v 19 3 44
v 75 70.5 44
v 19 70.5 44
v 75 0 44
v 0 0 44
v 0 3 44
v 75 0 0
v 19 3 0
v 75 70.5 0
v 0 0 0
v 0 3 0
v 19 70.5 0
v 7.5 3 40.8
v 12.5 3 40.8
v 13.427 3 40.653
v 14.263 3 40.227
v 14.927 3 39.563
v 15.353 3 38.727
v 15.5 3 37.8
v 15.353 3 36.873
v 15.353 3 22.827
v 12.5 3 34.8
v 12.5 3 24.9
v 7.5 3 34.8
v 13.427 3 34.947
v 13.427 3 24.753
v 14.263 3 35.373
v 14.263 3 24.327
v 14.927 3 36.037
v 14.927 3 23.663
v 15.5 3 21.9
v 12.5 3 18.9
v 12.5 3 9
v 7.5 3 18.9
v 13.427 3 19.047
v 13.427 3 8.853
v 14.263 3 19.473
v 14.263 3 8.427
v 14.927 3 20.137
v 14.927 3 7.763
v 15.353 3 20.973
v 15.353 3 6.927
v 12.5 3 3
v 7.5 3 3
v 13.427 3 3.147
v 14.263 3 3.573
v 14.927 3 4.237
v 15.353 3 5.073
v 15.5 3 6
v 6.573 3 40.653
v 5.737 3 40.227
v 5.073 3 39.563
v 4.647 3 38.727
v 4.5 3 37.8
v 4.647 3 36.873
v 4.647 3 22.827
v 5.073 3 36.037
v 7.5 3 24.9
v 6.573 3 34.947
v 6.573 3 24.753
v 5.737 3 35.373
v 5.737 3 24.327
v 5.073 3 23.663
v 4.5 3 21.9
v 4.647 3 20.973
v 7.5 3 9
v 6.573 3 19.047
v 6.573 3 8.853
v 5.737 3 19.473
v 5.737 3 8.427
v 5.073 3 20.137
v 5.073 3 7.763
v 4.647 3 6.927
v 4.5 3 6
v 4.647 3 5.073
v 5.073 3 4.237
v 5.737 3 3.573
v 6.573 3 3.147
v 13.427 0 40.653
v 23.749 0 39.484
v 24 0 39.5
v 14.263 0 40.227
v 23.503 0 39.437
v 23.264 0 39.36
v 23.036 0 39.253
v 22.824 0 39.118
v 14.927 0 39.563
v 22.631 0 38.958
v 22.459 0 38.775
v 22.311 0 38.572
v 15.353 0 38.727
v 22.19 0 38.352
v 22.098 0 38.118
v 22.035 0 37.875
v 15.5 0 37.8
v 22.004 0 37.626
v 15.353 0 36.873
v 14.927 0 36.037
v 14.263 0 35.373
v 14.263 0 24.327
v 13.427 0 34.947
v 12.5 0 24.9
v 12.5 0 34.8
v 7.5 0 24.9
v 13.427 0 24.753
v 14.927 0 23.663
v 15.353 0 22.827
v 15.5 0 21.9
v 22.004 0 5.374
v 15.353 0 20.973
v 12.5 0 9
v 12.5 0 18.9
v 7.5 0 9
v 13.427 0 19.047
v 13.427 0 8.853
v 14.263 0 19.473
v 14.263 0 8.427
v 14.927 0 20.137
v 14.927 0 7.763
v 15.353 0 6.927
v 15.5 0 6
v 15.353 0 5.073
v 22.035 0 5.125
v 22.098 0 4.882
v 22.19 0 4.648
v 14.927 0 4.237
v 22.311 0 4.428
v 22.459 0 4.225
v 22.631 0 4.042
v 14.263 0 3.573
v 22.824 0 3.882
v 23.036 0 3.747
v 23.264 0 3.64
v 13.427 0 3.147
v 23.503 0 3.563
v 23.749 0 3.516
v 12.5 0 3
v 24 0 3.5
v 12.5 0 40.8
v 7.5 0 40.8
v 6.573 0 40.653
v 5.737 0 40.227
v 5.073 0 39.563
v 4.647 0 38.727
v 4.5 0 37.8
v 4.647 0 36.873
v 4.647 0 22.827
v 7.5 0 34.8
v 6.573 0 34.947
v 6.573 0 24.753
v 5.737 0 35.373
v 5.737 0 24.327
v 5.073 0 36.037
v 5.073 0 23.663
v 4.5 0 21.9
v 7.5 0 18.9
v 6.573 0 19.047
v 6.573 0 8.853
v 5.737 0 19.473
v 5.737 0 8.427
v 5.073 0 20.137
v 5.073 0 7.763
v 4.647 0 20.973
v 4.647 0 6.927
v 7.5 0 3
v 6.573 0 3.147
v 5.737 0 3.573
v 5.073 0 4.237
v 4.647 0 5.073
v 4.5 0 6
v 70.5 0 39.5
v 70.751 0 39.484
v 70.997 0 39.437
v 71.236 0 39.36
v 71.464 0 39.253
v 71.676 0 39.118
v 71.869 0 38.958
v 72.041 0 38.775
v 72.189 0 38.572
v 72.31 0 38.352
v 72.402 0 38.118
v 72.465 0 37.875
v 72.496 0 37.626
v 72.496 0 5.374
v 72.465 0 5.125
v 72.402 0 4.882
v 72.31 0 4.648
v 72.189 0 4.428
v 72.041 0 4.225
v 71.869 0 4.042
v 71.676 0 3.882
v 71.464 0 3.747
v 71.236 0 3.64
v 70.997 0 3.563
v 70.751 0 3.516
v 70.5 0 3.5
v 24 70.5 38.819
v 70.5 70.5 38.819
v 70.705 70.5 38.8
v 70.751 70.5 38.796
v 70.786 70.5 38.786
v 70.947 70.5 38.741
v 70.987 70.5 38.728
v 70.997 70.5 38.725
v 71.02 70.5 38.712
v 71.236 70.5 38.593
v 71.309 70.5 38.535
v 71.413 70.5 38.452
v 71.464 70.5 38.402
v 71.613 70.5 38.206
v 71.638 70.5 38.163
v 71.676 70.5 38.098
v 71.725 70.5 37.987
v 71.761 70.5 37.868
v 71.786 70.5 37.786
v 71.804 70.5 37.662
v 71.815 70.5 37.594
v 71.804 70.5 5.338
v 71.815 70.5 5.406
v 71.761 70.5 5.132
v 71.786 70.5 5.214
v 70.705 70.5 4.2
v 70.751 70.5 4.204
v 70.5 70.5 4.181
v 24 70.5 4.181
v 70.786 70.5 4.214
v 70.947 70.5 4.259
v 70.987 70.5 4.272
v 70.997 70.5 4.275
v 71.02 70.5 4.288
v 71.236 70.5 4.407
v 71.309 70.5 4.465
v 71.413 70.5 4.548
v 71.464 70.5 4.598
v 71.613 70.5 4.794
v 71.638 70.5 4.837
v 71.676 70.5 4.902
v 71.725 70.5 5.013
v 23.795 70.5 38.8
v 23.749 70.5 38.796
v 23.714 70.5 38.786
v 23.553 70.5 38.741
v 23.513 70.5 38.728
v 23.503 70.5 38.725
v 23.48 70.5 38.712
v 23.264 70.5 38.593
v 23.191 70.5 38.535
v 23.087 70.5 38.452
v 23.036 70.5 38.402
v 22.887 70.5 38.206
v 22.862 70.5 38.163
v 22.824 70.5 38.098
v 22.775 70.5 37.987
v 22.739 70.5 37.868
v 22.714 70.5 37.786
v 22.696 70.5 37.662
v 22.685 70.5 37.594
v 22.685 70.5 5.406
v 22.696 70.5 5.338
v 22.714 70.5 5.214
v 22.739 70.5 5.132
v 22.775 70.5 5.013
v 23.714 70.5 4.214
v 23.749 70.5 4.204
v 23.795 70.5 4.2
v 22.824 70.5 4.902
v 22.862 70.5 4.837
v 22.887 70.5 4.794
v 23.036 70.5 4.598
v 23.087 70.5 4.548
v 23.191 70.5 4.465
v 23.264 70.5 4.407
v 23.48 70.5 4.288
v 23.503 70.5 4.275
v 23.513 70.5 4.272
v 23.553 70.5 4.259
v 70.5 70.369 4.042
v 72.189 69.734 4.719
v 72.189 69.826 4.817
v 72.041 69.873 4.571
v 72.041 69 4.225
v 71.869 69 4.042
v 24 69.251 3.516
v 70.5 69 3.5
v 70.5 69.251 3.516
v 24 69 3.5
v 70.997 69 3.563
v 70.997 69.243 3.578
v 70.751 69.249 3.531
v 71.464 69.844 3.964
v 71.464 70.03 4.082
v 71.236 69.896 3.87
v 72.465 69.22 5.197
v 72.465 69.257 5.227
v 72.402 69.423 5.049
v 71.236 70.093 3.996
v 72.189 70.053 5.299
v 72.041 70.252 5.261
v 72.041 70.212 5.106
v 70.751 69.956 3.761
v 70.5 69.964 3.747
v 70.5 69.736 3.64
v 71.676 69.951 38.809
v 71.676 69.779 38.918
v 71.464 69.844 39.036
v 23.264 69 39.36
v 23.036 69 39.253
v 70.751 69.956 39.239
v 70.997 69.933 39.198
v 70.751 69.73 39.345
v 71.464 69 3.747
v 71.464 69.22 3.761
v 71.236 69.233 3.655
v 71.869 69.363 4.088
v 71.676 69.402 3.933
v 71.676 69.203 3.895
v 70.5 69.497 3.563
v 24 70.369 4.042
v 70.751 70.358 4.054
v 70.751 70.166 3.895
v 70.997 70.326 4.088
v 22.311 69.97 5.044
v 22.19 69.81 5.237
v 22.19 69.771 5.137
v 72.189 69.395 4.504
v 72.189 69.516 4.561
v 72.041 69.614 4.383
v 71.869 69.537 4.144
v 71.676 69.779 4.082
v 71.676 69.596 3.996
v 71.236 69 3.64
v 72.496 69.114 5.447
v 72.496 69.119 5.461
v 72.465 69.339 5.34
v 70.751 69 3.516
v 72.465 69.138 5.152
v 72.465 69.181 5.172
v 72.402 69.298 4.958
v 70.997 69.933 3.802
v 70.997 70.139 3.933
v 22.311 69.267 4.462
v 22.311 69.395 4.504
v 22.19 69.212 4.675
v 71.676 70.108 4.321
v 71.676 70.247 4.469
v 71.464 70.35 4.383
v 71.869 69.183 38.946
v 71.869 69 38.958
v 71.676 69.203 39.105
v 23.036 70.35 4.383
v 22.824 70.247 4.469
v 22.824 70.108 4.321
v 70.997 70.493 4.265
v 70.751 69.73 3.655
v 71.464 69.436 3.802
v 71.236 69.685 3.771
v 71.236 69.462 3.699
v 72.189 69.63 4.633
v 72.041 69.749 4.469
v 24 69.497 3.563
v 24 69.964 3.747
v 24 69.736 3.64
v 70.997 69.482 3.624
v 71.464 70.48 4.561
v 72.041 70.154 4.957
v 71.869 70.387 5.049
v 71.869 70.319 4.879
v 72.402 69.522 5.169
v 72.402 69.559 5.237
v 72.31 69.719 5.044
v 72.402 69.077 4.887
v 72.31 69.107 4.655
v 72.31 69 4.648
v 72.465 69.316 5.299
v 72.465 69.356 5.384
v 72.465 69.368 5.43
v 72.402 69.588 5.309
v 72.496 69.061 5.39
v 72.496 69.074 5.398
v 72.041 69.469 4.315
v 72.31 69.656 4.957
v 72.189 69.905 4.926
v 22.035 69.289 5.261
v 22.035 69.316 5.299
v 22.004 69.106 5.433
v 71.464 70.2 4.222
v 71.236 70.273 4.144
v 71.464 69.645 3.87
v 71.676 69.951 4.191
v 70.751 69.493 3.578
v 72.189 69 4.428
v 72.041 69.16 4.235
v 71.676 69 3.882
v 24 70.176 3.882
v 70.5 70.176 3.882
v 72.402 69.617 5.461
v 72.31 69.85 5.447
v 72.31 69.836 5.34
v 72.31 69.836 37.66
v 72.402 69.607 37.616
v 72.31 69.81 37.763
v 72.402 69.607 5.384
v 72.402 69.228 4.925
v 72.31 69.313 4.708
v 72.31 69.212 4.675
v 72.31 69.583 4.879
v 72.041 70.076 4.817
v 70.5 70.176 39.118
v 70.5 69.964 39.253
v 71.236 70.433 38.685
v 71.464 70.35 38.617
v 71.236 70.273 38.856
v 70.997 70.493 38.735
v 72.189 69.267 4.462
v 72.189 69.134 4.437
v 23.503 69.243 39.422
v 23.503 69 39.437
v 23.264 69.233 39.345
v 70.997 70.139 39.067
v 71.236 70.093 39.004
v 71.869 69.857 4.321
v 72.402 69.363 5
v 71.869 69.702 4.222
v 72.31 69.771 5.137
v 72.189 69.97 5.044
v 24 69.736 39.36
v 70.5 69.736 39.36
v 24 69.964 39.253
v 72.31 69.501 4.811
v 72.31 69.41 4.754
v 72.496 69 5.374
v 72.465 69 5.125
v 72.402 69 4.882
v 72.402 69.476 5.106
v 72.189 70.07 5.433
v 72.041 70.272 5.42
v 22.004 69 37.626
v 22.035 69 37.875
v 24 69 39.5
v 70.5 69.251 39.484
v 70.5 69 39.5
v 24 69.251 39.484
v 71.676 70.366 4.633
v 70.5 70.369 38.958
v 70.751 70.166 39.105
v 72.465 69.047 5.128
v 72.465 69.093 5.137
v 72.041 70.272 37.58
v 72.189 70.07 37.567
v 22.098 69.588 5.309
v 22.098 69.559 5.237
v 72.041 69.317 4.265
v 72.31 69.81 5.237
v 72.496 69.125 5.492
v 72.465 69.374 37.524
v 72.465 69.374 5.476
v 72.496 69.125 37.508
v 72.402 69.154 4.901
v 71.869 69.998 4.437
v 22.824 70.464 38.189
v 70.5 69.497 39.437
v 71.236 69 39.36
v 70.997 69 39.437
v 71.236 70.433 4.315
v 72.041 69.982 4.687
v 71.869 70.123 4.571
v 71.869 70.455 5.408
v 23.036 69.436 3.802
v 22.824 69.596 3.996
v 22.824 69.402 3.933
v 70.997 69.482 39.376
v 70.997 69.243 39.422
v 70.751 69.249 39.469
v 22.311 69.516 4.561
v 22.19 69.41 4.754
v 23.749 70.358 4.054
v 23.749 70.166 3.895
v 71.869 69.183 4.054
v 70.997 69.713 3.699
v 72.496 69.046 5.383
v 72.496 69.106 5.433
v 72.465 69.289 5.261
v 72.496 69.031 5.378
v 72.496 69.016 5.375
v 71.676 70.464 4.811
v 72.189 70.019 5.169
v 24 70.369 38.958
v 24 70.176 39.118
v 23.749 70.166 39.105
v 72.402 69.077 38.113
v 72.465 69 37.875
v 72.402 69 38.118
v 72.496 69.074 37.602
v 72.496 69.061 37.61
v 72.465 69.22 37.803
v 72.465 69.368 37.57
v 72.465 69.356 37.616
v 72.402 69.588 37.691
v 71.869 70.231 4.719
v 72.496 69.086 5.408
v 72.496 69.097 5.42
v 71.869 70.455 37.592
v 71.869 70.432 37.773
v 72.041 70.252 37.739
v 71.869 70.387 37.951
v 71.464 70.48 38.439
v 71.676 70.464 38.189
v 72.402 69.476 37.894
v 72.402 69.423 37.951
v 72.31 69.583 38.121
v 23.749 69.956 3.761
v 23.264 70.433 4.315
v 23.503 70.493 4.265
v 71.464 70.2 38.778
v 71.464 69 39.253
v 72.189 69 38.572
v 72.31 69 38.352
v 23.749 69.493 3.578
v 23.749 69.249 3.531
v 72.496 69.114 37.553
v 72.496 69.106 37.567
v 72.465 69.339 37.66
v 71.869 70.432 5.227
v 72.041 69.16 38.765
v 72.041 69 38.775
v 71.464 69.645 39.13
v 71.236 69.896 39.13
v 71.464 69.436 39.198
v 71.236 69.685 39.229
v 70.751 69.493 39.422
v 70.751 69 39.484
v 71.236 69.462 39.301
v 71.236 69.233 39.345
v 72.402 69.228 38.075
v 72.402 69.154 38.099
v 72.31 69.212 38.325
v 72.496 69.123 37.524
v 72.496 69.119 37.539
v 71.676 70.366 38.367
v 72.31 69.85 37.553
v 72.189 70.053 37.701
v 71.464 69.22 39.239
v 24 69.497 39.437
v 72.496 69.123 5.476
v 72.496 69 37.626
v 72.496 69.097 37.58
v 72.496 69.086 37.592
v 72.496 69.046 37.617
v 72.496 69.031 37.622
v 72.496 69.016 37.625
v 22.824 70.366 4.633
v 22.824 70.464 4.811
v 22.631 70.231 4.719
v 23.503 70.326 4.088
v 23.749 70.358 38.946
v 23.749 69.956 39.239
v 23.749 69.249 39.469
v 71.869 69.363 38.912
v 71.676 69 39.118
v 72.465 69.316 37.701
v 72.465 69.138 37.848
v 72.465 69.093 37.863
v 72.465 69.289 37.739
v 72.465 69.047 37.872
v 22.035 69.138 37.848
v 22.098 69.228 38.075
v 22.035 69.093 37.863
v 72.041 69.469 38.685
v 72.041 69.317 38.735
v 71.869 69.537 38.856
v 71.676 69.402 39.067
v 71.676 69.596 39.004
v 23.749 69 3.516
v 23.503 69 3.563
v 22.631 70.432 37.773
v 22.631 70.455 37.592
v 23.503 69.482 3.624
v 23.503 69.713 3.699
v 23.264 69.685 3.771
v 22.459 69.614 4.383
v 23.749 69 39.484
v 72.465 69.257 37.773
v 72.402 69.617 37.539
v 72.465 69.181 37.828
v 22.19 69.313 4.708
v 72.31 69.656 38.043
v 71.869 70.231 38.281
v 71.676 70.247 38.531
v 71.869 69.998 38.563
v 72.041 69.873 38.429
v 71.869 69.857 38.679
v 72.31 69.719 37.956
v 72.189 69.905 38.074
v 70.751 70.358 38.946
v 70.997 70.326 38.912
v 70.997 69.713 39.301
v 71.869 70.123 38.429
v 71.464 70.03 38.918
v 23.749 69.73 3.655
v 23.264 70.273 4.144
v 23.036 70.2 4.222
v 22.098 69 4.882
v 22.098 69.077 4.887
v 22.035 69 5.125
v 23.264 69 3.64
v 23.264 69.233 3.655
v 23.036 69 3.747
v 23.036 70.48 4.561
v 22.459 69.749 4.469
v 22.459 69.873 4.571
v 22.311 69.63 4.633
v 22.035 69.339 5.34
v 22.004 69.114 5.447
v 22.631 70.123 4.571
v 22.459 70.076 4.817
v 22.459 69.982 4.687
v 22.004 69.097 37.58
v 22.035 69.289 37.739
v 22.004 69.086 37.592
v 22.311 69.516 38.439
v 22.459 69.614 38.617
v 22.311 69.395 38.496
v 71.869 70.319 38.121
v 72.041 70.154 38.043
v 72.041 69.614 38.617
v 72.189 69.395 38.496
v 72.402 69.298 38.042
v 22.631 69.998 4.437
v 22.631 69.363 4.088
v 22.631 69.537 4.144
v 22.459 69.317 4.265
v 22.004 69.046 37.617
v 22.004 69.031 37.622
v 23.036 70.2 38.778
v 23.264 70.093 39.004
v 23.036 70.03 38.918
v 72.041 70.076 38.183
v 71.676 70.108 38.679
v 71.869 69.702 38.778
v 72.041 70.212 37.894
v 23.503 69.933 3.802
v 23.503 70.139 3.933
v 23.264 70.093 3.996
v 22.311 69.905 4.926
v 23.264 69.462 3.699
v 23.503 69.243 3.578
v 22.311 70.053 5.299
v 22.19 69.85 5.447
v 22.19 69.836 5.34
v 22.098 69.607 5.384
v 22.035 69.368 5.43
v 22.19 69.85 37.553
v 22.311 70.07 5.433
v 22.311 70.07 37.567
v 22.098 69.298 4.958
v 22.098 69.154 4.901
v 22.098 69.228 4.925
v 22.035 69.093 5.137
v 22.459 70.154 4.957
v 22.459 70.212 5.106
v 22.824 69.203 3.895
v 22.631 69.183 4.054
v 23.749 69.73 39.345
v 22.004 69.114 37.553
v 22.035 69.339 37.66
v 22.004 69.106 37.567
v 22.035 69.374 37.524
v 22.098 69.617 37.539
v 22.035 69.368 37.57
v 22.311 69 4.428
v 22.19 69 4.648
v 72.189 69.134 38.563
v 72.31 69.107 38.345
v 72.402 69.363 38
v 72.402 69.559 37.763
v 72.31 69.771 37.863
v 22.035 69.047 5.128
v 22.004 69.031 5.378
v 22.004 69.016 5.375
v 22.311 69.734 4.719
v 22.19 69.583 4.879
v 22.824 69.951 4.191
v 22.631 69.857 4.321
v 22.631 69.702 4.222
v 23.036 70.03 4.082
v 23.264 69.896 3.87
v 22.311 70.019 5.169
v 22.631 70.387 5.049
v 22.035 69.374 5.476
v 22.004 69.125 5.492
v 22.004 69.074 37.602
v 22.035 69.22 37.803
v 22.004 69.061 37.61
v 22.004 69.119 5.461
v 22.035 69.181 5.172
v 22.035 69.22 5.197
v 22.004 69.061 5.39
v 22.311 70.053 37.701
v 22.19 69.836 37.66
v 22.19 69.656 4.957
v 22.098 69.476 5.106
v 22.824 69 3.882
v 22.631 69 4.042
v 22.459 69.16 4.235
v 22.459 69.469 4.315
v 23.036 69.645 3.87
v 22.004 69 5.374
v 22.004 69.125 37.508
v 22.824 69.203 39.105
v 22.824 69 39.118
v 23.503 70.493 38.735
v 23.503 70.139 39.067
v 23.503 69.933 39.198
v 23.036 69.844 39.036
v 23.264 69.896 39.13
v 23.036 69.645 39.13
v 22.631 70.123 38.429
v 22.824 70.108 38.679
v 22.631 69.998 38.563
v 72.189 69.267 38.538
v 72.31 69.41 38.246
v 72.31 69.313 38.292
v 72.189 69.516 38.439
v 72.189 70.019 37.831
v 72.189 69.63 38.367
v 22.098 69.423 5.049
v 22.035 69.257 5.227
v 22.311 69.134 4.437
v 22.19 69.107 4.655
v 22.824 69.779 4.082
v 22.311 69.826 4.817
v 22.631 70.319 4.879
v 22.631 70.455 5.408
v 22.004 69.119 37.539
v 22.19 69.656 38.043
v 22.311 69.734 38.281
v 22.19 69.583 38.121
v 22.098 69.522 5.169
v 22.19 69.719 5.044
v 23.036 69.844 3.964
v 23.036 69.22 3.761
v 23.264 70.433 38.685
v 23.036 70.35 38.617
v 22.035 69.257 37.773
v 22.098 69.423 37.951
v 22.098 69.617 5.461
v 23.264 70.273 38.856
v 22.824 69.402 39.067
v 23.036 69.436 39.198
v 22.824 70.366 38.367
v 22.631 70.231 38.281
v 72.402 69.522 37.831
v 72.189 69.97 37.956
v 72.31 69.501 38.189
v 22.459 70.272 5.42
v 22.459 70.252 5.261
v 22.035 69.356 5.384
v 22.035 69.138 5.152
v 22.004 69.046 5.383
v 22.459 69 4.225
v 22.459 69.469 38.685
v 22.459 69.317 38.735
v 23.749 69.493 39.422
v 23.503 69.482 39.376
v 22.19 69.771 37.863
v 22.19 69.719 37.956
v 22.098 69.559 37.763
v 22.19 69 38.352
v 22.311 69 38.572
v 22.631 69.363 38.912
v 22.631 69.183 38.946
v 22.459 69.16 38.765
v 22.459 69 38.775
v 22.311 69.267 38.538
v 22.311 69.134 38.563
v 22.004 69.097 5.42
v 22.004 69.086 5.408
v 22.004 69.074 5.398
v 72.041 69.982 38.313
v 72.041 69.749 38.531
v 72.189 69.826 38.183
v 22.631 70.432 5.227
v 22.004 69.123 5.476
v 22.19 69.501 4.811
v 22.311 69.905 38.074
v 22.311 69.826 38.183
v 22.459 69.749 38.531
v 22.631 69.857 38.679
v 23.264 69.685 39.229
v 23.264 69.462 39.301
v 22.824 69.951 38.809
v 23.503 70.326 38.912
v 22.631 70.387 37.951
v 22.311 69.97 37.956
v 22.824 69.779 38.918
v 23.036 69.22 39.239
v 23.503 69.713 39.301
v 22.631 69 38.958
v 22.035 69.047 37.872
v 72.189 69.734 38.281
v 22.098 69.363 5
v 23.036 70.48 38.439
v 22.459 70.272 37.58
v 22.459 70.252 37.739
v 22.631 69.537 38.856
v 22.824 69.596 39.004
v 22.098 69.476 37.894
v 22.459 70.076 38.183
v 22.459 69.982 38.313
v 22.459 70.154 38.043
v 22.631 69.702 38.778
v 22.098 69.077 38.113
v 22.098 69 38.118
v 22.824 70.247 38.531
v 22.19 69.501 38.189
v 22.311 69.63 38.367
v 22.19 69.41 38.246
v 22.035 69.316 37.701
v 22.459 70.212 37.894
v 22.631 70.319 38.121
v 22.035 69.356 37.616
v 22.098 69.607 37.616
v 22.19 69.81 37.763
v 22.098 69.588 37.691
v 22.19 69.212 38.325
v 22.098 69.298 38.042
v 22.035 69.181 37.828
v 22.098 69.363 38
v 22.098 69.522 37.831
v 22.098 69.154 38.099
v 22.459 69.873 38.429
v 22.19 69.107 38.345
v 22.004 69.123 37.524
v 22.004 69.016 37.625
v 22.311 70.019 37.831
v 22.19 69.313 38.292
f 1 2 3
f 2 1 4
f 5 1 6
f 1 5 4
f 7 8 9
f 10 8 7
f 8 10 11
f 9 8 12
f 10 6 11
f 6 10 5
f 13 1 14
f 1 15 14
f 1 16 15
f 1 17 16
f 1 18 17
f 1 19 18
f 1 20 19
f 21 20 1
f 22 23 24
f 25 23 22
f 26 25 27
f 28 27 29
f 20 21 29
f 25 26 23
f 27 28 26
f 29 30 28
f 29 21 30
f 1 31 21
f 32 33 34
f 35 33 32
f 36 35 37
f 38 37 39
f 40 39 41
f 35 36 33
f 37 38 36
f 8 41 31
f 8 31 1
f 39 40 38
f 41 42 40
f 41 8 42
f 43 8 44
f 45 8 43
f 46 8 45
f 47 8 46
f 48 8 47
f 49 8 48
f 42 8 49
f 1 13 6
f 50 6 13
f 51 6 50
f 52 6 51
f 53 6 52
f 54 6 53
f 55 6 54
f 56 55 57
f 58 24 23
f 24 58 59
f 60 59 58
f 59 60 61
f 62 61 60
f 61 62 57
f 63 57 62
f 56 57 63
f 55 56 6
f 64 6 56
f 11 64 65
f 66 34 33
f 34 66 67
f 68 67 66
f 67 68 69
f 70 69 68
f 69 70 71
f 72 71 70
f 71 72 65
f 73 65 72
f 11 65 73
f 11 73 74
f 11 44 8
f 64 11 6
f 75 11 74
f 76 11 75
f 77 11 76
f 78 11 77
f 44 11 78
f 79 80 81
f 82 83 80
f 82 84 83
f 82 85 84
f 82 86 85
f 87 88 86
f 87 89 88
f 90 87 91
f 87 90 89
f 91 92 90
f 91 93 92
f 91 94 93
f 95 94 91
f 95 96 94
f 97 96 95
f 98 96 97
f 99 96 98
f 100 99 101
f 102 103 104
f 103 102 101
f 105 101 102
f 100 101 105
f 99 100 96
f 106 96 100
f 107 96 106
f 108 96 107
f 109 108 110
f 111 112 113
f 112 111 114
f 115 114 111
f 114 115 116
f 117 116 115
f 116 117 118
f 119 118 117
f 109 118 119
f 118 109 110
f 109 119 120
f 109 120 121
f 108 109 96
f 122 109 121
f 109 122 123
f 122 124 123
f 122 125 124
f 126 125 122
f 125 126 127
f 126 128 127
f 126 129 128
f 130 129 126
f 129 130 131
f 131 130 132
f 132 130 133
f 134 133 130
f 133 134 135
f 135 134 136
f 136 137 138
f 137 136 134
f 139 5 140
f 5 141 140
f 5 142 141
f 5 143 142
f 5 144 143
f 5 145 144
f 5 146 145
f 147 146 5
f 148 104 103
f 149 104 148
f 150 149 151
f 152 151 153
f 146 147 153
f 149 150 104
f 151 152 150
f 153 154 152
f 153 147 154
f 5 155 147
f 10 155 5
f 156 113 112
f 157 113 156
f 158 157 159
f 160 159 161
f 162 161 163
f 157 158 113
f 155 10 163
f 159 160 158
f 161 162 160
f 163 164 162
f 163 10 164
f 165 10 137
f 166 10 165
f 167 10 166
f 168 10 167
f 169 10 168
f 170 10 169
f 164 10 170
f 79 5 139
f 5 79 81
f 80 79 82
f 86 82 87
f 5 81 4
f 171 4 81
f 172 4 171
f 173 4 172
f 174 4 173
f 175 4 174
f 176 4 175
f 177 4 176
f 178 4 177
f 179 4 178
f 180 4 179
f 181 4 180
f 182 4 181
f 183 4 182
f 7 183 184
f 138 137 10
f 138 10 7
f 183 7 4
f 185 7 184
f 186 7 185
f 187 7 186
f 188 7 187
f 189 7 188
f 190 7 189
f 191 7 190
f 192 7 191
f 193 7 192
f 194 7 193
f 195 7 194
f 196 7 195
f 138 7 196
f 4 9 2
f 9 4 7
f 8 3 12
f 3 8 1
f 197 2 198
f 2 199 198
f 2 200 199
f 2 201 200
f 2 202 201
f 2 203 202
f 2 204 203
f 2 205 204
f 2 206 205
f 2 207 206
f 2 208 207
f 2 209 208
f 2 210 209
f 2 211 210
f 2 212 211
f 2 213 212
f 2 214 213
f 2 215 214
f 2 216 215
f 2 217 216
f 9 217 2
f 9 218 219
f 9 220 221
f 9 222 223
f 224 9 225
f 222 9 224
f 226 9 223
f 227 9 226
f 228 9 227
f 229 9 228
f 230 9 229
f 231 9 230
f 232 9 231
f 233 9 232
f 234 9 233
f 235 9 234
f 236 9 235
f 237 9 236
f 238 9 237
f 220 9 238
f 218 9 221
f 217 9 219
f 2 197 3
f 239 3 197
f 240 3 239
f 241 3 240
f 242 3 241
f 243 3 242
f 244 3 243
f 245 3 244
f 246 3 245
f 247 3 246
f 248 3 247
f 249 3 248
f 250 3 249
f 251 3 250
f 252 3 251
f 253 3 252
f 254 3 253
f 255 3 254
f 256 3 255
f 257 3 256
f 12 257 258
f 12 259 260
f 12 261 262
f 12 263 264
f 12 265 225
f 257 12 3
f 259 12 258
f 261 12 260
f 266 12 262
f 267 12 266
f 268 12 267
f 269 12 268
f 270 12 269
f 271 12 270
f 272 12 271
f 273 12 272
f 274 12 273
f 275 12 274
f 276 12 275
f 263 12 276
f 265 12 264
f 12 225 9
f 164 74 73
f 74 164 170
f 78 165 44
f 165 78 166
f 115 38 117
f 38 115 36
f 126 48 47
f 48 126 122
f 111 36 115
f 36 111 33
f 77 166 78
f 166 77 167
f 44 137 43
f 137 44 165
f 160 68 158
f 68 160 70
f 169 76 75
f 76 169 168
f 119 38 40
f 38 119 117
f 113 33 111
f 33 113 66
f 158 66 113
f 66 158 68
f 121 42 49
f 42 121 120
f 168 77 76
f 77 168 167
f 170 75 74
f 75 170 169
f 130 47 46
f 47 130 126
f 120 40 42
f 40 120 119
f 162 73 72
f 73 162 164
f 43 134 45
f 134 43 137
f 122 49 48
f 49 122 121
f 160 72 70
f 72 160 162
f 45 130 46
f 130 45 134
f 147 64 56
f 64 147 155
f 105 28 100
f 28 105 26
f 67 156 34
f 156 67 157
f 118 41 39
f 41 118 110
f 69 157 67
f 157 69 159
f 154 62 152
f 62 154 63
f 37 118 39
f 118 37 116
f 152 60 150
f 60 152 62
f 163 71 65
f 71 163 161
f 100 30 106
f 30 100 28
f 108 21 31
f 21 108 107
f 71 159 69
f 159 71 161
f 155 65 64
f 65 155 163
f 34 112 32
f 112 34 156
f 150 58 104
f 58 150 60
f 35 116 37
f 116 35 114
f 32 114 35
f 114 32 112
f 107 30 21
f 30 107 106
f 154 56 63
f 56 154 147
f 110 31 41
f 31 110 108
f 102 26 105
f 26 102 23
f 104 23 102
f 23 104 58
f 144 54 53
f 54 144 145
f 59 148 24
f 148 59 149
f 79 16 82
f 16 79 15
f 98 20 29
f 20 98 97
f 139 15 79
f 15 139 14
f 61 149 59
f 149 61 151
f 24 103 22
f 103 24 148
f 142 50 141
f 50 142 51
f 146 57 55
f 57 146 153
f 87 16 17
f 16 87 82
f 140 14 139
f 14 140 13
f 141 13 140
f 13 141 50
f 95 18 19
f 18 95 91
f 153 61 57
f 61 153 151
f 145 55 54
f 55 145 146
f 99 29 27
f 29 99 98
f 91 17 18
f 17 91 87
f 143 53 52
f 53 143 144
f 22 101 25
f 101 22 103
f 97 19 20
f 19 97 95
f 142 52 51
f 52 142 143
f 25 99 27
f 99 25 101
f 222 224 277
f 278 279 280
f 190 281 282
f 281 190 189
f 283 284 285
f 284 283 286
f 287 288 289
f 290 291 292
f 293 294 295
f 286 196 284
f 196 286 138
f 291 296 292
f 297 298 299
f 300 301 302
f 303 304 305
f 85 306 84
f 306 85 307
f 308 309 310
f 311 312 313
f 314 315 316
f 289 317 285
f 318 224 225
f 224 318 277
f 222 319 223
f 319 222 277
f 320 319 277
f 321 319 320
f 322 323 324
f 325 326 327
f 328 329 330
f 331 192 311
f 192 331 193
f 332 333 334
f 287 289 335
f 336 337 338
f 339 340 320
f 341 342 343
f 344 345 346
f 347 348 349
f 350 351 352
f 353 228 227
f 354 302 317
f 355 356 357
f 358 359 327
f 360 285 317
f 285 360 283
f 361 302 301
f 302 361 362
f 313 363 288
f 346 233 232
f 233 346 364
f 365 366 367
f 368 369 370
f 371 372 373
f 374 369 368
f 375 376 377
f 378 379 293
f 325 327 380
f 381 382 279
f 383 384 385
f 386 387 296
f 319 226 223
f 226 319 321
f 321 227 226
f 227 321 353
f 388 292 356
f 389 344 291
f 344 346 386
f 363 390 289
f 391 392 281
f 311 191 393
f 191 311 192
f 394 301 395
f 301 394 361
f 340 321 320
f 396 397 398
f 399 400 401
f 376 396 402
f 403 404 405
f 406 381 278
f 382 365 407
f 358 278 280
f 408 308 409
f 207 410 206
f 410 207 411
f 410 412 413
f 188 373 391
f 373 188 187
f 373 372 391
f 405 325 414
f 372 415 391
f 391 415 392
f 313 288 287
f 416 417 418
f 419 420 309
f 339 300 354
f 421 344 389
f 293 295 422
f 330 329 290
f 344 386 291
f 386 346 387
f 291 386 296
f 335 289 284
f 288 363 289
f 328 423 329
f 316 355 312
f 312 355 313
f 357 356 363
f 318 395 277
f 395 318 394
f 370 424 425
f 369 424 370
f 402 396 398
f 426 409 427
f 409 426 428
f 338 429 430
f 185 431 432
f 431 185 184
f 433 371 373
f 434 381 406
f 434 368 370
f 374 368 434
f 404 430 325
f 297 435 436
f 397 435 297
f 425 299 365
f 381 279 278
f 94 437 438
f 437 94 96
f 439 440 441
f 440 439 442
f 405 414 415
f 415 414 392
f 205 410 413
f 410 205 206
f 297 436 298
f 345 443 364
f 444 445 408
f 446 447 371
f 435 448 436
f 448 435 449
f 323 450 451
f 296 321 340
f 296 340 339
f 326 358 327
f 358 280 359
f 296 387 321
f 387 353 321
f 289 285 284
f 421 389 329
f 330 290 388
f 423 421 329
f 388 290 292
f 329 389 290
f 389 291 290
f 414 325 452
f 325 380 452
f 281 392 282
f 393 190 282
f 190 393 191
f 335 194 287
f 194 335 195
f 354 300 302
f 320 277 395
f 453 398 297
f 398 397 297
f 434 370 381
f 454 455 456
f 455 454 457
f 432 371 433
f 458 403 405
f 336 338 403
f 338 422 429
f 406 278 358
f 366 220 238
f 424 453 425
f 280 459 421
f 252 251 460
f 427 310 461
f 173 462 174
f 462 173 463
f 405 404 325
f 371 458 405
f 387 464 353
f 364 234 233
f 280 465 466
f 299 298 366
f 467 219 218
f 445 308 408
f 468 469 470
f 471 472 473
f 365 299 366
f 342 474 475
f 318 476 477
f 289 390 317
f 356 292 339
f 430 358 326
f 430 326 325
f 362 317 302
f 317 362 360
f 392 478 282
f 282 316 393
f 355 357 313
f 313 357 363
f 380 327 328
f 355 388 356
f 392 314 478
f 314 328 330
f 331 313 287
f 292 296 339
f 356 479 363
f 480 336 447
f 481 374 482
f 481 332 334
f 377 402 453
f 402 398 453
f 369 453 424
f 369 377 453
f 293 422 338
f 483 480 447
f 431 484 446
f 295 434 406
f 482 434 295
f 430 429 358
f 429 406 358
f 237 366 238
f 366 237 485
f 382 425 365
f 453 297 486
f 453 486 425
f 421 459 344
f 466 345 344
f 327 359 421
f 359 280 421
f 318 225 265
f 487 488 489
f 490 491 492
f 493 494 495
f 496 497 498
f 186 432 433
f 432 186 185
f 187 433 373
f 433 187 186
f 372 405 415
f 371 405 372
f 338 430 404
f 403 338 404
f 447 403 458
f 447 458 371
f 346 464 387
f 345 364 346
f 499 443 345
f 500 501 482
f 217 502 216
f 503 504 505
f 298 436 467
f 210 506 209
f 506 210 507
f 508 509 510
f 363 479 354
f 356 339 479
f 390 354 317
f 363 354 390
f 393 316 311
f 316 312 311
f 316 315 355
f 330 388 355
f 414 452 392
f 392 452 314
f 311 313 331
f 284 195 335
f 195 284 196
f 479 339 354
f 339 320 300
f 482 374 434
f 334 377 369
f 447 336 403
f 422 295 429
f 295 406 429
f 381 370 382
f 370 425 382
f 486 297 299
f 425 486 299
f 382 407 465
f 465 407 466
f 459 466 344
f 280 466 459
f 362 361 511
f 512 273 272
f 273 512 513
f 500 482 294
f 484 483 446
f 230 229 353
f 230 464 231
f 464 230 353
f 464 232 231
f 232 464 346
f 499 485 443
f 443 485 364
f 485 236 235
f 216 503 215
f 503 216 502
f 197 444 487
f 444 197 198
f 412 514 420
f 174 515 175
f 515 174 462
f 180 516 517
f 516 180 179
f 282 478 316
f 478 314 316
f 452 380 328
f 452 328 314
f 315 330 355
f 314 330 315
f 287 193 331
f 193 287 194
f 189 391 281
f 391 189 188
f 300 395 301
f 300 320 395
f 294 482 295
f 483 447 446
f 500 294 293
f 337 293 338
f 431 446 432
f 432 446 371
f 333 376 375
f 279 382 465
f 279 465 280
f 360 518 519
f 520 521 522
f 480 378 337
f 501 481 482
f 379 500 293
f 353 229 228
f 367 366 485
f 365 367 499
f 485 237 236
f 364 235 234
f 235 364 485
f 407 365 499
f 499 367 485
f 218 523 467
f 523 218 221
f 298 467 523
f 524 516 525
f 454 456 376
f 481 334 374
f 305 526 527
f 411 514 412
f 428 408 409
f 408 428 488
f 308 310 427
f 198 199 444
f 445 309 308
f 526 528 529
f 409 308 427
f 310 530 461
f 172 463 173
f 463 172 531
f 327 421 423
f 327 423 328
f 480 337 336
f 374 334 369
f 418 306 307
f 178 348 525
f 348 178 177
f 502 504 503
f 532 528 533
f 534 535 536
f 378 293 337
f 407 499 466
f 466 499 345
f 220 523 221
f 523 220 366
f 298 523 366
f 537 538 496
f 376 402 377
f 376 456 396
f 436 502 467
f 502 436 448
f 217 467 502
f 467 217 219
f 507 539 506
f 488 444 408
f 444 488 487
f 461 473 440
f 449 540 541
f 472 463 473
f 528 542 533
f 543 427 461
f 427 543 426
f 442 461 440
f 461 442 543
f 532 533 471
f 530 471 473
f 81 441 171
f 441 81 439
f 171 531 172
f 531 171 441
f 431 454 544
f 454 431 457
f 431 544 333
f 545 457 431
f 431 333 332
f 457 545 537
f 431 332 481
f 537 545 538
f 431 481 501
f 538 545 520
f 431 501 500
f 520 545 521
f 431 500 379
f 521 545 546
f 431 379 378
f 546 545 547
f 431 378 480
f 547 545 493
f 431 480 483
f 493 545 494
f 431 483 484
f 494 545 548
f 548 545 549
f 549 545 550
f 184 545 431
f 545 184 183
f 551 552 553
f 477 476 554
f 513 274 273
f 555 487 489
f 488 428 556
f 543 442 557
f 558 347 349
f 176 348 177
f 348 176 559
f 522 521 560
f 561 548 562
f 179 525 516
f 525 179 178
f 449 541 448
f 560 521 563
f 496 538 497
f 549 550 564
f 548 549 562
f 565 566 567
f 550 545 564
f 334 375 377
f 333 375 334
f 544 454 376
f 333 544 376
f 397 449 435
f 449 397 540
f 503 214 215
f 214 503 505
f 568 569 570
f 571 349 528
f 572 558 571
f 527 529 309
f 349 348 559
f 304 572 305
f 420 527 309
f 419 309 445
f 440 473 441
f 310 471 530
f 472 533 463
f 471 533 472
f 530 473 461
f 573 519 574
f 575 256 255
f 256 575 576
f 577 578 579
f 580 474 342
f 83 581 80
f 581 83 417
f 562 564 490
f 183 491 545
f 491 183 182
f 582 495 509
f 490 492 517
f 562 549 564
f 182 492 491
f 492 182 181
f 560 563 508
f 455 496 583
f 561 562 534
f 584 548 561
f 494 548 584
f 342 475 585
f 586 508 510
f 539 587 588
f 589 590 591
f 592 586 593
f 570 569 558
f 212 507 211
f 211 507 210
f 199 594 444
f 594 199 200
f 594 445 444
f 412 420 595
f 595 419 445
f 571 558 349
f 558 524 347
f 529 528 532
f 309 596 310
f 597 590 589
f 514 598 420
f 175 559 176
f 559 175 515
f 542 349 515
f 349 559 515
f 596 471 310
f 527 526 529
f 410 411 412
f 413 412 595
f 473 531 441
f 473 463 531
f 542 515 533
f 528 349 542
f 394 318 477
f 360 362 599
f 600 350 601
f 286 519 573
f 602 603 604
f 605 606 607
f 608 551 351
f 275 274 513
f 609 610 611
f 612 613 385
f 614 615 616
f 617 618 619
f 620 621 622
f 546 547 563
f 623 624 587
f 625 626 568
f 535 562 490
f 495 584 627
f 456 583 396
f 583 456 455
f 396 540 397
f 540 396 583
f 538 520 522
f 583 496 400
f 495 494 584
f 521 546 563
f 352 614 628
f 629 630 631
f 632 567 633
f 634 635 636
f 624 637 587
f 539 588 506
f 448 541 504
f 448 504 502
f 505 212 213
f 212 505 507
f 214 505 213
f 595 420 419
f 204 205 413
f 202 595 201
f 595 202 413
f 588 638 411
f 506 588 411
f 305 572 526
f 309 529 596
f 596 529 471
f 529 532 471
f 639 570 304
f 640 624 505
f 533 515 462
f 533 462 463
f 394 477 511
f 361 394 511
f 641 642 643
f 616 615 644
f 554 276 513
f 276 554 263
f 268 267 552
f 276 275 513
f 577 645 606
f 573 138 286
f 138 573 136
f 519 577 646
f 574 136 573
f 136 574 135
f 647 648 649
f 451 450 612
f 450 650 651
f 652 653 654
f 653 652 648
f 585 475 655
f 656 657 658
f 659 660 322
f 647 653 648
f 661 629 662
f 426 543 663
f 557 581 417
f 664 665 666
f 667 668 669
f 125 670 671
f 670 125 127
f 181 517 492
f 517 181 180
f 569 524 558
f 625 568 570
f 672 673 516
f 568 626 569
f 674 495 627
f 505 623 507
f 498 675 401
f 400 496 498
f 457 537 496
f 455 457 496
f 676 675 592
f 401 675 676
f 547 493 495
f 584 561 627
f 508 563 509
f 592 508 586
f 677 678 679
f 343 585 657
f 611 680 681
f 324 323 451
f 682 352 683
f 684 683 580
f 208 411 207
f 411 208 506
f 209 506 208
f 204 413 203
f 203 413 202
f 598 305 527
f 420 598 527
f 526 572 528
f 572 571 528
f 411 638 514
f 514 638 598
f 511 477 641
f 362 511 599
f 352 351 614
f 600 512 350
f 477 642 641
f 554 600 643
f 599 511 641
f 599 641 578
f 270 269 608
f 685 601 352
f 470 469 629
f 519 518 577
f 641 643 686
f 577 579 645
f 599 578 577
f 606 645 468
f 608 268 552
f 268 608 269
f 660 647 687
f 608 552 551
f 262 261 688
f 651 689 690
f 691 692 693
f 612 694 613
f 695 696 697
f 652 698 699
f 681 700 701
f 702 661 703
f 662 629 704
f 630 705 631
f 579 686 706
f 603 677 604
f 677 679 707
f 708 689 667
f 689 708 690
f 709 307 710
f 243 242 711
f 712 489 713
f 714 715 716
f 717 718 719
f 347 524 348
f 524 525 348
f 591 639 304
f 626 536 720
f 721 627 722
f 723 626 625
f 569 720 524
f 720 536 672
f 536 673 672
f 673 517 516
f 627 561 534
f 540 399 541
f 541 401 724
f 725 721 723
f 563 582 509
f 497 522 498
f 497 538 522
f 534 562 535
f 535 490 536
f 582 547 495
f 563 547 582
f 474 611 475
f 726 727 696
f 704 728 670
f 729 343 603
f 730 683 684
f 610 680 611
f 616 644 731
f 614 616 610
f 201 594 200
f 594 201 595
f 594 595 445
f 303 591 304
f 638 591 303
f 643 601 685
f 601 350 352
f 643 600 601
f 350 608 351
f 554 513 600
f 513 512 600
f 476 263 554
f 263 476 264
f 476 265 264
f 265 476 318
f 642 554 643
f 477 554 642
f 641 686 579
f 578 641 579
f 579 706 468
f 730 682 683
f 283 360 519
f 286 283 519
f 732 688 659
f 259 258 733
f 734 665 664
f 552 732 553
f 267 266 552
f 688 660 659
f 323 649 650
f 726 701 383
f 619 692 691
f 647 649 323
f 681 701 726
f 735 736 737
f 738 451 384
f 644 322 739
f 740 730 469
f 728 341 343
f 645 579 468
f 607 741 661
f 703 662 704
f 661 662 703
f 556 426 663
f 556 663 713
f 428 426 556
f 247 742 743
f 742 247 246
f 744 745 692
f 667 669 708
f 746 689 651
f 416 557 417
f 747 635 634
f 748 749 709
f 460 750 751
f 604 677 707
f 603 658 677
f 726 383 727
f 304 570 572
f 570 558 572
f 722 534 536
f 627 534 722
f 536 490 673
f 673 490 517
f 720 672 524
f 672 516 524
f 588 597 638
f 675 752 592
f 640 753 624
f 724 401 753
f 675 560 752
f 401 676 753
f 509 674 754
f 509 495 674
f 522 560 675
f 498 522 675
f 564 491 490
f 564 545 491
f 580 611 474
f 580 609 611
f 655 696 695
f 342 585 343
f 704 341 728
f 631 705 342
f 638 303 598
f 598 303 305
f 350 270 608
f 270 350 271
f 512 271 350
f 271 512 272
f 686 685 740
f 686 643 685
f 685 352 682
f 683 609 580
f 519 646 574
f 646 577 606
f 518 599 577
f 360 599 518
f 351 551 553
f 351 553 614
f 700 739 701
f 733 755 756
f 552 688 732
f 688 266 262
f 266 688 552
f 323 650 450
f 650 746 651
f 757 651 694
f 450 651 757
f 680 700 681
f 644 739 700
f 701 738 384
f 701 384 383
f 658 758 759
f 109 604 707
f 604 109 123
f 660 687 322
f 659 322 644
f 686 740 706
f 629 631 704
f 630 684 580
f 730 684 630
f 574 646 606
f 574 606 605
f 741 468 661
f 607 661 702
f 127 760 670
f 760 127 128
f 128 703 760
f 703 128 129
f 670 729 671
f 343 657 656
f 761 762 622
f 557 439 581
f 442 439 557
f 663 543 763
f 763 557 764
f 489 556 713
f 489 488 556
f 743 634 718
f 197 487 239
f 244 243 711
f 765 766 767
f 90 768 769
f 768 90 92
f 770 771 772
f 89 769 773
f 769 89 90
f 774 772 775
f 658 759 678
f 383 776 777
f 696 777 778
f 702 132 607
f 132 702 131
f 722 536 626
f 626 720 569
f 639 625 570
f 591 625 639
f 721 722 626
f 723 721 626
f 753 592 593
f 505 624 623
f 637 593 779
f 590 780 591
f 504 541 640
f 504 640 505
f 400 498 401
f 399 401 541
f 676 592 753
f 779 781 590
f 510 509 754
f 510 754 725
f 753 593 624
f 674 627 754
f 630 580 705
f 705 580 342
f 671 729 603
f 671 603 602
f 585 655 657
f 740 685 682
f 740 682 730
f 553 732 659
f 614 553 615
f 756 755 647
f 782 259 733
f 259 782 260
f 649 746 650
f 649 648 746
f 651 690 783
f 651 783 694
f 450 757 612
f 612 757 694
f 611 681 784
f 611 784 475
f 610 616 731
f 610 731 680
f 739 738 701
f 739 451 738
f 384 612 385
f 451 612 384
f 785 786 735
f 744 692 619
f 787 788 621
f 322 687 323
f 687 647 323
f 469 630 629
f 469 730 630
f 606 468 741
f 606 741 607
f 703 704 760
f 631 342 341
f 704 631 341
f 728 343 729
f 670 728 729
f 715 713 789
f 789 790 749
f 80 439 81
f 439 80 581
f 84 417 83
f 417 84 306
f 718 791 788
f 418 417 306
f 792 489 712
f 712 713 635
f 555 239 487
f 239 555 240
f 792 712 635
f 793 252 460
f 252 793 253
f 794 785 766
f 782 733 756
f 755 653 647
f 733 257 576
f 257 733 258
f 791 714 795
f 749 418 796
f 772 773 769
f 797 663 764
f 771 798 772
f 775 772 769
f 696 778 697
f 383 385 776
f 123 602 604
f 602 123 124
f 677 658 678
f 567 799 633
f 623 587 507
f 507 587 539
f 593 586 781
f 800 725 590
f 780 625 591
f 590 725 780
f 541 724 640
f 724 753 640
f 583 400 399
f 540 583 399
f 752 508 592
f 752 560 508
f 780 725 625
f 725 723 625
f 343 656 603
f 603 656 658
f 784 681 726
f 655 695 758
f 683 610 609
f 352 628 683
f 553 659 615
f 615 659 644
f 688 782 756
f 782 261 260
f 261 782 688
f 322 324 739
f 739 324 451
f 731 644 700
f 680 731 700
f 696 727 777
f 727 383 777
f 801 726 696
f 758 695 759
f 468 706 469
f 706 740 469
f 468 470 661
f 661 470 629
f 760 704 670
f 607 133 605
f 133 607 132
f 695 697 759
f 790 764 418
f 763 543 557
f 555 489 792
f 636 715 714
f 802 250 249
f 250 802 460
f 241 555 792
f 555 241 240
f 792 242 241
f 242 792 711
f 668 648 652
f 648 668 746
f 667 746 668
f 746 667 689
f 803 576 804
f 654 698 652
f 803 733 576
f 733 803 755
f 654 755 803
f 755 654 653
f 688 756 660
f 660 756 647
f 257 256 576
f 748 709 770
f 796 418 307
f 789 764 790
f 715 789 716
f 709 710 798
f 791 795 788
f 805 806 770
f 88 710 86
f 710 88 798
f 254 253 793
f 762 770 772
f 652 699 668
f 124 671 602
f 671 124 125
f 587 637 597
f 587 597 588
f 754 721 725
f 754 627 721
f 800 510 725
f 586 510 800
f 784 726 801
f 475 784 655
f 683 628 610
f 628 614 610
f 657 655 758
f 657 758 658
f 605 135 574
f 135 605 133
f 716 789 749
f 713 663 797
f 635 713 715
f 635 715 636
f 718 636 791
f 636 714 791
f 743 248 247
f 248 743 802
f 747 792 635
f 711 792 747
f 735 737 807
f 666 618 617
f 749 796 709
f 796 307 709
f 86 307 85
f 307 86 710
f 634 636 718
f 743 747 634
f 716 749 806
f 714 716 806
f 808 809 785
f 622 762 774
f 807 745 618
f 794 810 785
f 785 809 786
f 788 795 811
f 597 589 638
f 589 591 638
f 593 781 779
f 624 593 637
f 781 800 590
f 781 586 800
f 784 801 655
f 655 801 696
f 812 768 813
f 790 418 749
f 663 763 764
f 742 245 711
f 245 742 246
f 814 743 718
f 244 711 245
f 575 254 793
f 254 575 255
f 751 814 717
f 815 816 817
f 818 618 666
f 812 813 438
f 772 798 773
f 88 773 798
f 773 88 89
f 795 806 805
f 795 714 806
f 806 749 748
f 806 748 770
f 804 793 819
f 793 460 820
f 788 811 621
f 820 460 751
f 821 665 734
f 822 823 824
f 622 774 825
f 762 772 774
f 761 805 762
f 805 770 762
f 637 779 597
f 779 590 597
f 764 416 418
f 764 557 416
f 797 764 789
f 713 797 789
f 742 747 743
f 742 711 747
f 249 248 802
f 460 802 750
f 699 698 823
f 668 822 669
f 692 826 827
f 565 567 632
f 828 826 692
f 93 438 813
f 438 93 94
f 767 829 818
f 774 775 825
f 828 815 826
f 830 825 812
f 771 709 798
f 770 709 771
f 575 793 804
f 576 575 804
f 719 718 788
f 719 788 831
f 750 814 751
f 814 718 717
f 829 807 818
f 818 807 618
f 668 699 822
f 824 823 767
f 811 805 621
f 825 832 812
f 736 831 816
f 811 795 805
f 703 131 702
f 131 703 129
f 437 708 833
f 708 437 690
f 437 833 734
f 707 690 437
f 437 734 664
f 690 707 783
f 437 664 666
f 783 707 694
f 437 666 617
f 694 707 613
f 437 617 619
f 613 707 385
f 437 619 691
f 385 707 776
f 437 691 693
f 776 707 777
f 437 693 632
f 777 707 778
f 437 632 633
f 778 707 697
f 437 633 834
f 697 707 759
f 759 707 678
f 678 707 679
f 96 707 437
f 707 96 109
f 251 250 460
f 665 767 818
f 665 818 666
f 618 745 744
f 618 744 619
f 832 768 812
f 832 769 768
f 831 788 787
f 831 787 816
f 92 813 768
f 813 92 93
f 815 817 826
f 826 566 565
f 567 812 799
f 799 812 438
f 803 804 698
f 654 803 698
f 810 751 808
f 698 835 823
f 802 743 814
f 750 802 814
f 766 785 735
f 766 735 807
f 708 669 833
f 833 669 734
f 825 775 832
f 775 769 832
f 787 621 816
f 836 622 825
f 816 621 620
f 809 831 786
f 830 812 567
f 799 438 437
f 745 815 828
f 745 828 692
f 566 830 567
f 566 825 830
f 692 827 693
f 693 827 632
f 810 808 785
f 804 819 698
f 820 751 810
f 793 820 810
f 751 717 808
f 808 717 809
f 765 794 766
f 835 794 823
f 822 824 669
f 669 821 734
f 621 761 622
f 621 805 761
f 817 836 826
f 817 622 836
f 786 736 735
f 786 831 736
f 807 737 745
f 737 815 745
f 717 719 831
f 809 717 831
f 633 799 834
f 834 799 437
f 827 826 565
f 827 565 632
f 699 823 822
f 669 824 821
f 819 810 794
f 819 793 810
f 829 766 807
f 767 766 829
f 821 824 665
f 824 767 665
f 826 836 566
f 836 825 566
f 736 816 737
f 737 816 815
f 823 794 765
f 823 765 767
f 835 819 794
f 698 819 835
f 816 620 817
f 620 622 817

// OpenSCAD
$U = 1;

translate([0,0,0]) {
    difference() {
        union() {
            cube([20,3,44*$U]);
            translate([19,0,0]) cube([56,70.5,44*$U]);
        }
        translate([24,-1,5.5]) minkowski(){
            cube([46.5,70,32]);
            rotate([0,90,0]) sphere(r=2, $fn=50);
        }
        for(spread = [6:15.9:45]) {
            color("red") translate([7.5 ,5,spread]) rackMount();
        }
    }
}


module rackMount() {
    rotate([ 90,0,0]) hull() {
        cylinder(h=20, d = 6, $fn=20);
        translate([5,0,0]) cylinder(h=20, d = 6, $fn=20);
    }
}
